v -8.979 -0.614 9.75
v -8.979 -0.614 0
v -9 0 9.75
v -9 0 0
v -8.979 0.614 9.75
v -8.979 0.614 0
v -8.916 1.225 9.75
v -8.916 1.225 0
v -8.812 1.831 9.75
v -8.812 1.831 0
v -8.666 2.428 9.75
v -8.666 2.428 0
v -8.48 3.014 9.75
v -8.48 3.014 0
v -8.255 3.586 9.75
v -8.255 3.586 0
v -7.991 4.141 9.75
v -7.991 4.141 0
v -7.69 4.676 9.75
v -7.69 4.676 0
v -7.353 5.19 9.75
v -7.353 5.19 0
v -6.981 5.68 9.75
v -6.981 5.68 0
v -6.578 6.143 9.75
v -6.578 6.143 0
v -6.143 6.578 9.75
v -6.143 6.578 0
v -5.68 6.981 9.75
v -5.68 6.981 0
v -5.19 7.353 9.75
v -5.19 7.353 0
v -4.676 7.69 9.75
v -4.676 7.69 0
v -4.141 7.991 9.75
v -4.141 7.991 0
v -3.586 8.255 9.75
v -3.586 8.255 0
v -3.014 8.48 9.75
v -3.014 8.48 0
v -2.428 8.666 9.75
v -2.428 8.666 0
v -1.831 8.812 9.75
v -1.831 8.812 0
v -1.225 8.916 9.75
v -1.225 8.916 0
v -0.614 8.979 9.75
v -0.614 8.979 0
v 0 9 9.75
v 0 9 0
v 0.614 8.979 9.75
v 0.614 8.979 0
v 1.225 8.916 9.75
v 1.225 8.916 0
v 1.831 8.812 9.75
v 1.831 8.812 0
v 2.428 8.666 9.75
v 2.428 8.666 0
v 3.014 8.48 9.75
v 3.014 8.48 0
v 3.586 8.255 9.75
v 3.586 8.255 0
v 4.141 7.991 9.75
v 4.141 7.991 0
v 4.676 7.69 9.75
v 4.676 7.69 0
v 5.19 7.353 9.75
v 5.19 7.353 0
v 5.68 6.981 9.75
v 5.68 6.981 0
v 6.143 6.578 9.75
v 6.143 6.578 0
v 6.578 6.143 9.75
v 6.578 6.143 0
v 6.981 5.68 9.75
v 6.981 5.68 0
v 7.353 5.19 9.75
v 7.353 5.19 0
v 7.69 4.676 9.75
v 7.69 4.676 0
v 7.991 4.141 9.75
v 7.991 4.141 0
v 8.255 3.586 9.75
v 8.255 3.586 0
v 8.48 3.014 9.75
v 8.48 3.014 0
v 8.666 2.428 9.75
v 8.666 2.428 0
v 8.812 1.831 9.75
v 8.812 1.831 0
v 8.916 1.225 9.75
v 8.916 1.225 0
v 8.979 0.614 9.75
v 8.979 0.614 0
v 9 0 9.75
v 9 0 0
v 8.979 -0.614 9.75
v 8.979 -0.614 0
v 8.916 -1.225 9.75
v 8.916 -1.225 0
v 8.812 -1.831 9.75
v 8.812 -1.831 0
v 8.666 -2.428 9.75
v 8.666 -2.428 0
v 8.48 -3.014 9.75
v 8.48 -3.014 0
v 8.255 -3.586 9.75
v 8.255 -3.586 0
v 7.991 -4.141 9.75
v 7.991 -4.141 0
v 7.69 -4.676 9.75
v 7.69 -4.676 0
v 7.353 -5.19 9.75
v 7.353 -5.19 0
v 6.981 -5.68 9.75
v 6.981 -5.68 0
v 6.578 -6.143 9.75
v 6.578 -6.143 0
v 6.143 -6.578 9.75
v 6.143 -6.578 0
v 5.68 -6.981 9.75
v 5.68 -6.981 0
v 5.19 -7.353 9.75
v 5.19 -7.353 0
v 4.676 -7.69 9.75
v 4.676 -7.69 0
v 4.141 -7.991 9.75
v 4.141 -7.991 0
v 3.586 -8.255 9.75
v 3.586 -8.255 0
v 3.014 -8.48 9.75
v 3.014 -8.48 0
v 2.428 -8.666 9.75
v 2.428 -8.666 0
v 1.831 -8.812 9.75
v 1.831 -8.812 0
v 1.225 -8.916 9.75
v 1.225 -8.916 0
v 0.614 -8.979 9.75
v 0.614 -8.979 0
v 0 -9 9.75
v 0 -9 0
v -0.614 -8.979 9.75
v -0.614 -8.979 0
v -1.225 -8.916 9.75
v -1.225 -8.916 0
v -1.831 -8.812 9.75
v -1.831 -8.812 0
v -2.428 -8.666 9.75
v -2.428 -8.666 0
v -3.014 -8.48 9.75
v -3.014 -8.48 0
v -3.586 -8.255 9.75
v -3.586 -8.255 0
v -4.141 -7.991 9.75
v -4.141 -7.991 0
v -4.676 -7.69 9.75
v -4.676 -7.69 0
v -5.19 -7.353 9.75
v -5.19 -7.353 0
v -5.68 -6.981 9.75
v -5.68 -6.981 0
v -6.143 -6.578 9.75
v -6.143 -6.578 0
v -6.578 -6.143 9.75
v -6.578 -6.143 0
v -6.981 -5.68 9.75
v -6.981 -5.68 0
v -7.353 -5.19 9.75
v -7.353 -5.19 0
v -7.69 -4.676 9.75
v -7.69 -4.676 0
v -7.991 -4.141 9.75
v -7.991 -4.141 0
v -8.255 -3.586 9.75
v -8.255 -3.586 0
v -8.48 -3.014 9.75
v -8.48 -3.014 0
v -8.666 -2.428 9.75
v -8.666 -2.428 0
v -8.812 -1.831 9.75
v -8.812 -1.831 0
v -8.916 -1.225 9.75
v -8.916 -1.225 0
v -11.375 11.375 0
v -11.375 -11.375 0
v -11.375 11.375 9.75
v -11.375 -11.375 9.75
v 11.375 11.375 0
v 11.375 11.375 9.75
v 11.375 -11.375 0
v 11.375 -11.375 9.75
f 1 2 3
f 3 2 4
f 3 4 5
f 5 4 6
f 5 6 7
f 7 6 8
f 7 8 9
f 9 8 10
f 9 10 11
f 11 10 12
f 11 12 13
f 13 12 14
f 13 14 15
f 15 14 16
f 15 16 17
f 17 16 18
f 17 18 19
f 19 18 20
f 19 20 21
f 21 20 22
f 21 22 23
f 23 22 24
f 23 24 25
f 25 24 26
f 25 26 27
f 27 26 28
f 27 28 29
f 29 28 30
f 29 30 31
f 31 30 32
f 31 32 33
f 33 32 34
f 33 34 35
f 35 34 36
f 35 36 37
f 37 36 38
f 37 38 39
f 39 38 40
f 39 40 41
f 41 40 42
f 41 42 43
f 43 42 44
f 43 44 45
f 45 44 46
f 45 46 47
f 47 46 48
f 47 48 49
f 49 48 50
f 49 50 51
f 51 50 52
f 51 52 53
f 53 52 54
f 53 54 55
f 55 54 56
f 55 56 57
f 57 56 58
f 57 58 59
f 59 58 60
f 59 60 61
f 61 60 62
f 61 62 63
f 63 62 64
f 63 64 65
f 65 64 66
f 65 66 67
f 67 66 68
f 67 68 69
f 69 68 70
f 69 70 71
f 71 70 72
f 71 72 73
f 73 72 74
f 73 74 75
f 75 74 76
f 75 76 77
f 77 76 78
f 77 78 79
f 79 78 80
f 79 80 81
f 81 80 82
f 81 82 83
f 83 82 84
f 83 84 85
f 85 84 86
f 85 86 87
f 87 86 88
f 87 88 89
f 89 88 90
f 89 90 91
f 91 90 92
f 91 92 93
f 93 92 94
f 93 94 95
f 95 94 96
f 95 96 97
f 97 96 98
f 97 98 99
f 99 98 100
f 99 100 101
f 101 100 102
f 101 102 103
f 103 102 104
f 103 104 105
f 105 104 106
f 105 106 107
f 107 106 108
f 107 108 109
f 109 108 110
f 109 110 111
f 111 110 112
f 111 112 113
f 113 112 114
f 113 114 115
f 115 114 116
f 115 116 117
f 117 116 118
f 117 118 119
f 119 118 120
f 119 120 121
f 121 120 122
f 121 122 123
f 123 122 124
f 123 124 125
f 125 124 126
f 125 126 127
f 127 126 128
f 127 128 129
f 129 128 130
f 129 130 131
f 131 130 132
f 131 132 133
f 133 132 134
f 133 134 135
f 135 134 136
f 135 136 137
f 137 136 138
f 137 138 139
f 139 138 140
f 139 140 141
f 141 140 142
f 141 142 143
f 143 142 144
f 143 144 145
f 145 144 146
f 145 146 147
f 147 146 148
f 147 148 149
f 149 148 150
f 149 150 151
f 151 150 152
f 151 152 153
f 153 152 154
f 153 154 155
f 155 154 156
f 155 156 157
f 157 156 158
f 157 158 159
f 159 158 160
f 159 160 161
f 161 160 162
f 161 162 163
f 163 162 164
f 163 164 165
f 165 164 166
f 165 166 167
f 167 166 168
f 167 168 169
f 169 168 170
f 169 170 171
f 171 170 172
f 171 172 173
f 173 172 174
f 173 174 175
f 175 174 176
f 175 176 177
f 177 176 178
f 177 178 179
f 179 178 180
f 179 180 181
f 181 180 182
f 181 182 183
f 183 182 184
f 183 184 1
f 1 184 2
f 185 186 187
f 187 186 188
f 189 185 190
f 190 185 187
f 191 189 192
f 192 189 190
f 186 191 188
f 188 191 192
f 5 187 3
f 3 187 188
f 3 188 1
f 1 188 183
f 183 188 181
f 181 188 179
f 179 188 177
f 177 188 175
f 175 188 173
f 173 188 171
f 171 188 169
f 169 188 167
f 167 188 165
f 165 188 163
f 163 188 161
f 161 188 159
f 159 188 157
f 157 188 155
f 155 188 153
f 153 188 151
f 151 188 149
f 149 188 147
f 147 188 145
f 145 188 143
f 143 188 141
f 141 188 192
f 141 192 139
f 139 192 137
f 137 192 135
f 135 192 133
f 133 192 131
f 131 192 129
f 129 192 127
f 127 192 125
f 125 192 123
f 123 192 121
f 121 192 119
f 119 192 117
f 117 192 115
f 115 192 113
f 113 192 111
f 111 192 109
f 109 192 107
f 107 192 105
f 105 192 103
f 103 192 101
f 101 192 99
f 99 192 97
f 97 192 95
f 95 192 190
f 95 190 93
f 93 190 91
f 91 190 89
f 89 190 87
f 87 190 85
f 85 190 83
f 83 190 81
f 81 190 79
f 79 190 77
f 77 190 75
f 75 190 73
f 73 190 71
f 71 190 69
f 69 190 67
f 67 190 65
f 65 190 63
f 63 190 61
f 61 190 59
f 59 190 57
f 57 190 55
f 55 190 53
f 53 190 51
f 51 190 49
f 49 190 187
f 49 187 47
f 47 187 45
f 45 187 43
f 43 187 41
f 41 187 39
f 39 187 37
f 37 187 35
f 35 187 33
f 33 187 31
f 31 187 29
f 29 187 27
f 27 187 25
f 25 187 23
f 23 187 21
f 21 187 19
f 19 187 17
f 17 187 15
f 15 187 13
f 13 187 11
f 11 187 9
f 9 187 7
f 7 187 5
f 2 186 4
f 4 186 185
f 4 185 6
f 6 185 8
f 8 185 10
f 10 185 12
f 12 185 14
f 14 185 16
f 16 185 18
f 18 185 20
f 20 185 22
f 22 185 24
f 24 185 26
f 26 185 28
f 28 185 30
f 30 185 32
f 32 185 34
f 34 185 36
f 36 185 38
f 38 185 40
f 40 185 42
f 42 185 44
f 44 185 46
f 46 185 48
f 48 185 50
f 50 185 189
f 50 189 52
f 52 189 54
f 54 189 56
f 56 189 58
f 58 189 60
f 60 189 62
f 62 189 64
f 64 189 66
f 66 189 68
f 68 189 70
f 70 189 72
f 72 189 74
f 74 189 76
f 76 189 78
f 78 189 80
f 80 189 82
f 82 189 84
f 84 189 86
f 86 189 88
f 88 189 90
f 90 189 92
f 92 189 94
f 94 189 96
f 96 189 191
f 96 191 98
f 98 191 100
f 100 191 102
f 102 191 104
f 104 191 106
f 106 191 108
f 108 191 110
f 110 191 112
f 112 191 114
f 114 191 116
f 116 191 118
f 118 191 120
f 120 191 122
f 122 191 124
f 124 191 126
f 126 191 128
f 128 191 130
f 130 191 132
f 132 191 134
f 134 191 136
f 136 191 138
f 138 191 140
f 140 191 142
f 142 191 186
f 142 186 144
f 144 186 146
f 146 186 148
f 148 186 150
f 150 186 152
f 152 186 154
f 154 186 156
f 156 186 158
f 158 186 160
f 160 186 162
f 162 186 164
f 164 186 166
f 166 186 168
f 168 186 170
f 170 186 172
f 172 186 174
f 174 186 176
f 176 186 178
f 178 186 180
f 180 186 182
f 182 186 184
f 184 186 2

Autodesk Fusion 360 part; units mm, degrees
sketch "Sketch1" plane through (0, 0, 0) normal (0, 0, 1) x (1, 0, 0)
  line L0 (-11.375, 11.375) -> (11.375, 11.375)
  line L1 (11.375, 11.375) -> (11.375, -11.375)
  line L2 (11.375, -11.375) -> (-11.375, -11.375)
  line L3 (-11.375, -11.375) -> (-11.375, 11.375)
  circle A0 centre (0, 0) radius 9
  point P0 (0, 11.375)
  point P1 (11.375, 0)
  dimension "d1" = 22.75
  dimension "d2" = 18
extrude "Extrude3" add sketch "Sketch1" along normal blind 9.75
